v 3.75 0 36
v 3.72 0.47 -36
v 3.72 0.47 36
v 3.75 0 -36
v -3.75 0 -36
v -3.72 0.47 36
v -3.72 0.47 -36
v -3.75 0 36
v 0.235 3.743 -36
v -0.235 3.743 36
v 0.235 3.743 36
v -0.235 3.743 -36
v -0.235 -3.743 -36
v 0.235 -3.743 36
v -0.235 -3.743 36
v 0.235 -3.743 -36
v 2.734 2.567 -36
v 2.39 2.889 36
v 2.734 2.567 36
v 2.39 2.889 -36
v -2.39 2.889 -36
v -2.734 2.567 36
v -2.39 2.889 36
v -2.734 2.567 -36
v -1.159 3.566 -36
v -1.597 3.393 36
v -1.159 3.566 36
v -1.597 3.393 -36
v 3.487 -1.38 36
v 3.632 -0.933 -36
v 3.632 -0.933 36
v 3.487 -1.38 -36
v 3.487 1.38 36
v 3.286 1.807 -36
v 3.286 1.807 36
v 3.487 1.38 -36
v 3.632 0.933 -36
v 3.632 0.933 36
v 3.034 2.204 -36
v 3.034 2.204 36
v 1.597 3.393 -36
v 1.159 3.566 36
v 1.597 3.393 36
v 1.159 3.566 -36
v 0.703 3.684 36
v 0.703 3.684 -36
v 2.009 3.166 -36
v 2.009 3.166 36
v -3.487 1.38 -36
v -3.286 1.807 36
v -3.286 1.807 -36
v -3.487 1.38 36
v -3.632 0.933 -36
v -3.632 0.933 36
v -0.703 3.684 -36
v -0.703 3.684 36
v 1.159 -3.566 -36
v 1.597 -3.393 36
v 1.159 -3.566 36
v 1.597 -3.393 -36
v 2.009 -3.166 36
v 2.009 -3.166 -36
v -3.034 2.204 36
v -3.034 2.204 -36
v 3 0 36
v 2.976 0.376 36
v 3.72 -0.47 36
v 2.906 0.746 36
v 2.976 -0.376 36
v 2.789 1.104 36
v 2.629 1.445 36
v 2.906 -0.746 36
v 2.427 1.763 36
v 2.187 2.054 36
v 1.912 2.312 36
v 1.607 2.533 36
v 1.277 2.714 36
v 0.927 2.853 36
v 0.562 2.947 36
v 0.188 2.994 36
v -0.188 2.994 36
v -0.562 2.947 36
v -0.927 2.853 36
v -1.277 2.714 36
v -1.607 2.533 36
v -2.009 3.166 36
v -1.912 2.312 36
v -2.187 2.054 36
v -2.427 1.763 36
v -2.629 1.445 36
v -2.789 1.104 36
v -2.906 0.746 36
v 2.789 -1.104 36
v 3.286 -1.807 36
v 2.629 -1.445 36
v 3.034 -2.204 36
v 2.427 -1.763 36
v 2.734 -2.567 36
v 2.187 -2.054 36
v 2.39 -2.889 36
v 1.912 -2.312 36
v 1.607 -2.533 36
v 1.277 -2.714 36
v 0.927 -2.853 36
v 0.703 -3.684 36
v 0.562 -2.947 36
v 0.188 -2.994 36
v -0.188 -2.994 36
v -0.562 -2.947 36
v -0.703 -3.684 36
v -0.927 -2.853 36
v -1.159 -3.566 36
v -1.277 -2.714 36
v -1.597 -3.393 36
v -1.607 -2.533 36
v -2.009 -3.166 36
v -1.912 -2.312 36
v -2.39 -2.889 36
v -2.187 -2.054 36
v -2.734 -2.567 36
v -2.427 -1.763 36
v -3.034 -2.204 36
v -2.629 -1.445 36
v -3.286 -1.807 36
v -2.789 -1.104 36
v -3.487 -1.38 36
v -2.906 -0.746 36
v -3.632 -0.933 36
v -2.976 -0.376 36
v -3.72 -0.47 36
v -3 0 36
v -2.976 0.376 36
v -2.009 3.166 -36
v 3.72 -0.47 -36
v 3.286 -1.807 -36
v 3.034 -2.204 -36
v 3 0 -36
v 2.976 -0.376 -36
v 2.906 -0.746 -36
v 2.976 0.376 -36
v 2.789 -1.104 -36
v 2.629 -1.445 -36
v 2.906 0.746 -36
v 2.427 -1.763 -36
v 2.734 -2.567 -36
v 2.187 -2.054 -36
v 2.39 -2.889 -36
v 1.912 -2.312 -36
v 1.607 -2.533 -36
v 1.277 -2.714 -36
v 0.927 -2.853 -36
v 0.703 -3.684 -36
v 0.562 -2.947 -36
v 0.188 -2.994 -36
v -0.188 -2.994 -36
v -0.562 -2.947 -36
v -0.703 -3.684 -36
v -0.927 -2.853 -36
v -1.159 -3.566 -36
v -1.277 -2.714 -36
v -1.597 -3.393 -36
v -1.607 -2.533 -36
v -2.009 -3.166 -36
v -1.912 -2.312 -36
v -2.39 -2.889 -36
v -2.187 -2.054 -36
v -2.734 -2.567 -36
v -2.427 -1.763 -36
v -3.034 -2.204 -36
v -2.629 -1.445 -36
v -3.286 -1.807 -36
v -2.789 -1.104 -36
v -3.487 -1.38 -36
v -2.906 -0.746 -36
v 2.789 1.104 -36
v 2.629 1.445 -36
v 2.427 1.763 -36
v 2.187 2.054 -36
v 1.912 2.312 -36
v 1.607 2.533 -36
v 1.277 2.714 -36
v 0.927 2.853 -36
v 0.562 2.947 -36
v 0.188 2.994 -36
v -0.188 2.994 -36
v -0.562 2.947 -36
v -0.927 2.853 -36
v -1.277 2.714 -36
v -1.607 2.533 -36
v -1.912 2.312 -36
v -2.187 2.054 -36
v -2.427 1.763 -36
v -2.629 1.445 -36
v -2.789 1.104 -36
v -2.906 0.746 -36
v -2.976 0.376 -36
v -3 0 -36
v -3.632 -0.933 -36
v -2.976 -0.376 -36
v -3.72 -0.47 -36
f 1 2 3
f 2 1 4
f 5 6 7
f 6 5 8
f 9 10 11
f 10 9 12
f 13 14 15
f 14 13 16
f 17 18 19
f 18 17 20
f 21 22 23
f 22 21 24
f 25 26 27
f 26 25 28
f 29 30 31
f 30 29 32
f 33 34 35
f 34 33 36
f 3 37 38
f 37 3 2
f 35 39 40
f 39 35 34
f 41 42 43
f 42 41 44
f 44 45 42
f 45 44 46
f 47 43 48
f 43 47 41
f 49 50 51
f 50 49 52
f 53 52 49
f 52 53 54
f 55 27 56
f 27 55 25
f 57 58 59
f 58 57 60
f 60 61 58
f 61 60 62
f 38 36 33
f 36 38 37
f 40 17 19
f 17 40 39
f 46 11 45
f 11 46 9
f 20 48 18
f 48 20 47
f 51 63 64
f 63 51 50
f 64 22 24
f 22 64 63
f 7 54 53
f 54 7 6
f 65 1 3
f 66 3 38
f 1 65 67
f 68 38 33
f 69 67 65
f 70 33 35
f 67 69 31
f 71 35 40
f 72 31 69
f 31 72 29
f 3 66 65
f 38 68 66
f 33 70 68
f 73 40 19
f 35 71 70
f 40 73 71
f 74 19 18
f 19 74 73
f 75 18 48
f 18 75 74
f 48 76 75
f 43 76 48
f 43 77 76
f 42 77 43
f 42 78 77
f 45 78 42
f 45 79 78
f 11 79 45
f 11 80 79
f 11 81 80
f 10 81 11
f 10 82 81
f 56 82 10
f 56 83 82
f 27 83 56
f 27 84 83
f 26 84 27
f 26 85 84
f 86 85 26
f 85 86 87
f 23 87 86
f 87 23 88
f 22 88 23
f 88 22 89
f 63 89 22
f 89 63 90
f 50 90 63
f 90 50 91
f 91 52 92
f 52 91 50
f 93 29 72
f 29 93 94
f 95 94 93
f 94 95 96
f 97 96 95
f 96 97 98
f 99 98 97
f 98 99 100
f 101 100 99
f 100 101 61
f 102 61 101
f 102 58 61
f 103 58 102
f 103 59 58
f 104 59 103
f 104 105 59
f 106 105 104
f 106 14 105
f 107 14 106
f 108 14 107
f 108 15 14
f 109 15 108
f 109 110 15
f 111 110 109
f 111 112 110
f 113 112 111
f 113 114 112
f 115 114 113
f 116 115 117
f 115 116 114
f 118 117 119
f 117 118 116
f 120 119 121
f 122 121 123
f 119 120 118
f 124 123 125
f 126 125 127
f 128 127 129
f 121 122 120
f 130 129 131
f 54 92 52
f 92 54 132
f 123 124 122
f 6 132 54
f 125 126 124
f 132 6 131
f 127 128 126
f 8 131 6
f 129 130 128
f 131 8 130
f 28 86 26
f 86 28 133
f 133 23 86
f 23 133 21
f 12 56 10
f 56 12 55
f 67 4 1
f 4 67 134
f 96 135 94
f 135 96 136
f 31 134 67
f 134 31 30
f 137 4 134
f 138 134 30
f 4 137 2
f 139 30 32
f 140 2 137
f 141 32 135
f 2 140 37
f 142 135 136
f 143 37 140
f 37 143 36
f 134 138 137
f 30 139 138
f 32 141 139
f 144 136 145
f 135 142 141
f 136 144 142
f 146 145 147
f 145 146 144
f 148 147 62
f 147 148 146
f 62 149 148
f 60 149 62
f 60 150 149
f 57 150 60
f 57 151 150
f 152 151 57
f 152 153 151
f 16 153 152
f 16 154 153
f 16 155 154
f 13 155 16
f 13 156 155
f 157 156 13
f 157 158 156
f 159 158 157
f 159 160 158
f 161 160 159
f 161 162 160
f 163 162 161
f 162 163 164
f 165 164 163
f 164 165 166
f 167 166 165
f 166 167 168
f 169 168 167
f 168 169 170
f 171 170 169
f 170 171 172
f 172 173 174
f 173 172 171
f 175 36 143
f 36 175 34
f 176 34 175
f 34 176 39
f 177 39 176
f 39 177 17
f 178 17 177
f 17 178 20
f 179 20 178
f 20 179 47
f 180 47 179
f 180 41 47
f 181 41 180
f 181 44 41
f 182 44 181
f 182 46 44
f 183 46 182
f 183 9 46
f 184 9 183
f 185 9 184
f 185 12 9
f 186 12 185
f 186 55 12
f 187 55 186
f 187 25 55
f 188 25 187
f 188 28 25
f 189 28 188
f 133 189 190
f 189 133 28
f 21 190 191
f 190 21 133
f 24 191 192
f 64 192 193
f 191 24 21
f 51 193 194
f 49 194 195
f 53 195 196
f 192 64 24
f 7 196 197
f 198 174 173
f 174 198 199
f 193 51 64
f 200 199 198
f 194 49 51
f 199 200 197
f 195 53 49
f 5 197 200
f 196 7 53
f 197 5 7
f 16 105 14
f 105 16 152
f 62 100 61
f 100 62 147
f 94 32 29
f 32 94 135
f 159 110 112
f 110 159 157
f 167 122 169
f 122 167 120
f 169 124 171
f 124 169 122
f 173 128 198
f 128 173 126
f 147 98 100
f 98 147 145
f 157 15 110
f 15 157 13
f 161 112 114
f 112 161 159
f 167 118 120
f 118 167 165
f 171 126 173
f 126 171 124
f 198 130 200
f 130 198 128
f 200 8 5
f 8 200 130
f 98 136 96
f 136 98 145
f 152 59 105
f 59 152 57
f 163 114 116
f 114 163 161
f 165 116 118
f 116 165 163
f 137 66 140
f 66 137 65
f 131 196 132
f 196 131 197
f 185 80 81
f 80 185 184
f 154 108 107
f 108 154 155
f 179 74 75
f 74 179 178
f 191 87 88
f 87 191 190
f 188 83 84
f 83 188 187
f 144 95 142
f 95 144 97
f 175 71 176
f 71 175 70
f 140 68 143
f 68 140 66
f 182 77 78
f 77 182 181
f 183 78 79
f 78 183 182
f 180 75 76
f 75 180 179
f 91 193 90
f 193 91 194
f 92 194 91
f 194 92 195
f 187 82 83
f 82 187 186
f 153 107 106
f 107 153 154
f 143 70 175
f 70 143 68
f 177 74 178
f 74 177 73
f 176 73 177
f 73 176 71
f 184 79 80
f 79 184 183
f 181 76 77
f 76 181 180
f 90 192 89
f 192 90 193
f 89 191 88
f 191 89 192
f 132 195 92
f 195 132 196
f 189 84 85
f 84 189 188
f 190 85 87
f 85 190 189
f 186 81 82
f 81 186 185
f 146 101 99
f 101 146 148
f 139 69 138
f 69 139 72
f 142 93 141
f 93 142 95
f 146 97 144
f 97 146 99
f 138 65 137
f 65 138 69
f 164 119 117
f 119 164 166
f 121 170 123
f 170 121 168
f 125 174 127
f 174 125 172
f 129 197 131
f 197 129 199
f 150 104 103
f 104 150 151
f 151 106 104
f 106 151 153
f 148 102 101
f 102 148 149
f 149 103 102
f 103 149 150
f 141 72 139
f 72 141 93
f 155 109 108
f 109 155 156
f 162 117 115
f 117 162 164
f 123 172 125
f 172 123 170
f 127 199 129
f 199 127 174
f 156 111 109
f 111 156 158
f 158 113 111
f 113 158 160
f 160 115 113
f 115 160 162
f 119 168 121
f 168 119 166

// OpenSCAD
$fn = 50;


difference() {
	union() {
		translate(v = [0, 0, -36.0000000000]) {
			cylinder(h = 72, r = 3.7500000000);
		}
	}
	union() {
		translate(v = [0, 0, -100.0000000000]) {
			cylinder(h = 200, r = 3.0000000000);
		}
	}
}
